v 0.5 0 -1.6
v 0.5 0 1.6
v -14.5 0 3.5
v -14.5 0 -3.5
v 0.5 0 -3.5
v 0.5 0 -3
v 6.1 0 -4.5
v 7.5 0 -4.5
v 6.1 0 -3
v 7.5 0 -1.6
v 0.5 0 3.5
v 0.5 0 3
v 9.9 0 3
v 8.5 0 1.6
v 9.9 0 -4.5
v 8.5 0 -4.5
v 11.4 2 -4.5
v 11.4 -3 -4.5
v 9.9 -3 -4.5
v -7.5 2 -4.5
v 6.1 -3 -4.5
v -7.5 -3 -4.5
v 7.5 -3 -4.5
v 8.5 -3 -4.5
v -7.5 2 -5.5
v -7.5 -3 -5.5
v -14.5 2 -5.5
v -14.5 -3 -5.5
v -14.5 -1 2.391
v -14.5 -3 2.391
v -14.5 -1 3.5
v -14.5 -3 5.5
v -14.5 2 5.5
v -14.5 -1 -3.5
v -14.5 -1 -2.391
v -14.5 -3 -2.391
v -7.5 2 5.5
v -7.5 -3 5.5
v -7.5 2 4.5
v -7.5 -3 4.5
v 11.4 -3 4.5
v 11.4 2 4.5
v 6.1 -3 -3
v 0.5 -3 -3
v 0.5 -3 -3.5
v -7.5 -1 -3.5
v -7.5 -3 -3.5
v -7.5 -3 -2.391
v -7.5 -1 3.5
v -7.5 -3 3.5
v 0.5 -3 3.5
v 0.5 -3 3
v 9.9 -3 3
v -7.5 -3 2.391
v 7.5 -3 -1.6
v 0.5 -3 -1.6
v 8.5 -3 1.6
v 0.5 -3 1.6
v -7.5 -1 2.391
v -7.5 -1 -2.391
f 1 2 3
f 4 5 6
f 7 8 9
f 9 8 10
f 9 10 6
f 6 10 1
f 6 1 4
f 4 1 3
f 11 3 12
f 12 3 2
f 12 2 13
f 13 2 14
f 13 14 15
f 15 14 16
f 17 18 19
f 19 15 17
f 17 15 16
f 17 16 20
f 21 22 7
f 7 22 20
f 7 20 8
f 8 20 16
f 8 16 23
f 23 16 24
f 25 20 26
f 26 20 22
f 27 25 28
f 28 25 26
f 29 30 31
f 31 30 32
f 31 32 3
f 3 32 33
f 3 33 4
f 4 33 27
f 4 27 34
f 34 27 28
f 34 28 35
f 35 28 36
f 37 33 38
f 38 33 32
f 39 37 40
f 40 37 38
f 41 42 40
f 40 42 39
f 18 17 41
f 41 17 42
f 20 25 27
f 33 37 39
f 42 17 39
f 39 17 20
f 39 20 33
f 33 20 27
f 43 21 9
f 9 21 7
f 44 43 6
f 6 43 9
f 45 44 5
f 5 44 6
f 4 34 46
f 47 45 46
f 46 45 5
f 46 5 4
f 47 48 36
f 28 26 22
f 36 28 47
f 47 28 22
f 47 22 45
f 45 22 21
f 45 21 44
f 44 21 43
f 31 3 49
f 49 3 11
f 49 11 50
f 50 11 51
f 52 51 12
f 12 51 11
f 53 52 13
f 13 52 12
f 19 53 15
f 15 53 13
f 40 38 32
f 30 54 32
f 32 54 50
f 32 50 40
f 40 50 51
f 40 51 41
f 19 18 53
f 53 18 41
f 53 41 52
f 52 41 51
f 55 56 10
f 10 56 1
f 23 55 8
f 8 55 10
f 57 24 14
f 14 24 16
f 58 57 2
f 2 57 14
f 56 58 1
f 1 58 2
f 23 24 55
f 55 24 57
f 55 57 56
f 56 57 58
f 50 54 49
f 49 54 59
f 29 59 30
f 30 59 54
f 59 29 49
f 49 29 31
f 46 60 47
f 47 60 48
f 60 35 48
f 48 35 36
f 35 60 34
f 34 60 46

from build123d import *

# Parameters (mm, degrees)
BOSS_EXTRUDE1_DEPTH = 2
BOSS_EXTRUDE2_DEPTH = 3
SKETCH3_W           = 7
SKETCH3_H           = 3.108863517
BOSS_EXTRUDE3_DEPTH = 2


with BuildPart() as part:
    # Sketch1 → Boss-Extrude1 (new body)
    with BuildSketch(Plane(origin=(0, 0, 0), x_dir=(1, 0, 0), z_dir=(0, 1, 0))):
        Polygon((-7.5, -4.5), (7.5, -4.5), (11.4, -4.5), (11.4, 4.5), (7.5, 4.5), (-7.5, 4.5), (-7.5, 5.5), (-14.5, 5.5), (-14.5, -5.5), (-7.5, -5.5), align=None)
    extrude(amount=BOSS_EXTRUDE1_DEPTH)

    # Sketch2 → Boss-Extrude2 (add)
    with BuildSketch(Plane(origin=(0, 0, 0), x_dir=(1, 0, 0), z_dir=(0, 1, 0))):
        Polygon((6.1, 4.5), (-7.5, 4.5), (-7.5, 5.5), (-14.5, 5.5), (-14.5, 3.5), (0.5, 3.5), (0.5, 3), (6.1, 3), align=None)
        Polygon((-7.5, -4.5), (-7.5, -5.5), (-14.5, -5.5), (-14.5, -3.5), (0.5, -3.5), (0.5, -3), (7.5, -3), (9.9, -3), (9.9, 4.5), (11.4, 4.5), (11.4, -4.5), (7.5, -4.5), align=None)
        Polygon((0.5, -1.6), (0.5, 1.6), (7.5, 1.6), (7.5, 4.5), (8.5, 4.5), (8.5, -1.6), (7.5, -1.6), align=None)
    extrude(amount=-BOSS_EXTRUDE2_DEPTH)

    # Sketch3 → Boss-Extrude3 (add)
    with BuildSketch(Plane.XZ.offset(3)):
        with Locations((-11, 3.945568242)):
            Rectangle(SKETCH3_W, SKETCH3_H)
        with Locations((-11, -3.945568242)):
            Rectangle(SKETCH3_W, SKETCH3_H)
    extrude(amount=-BOSS_EXTRUDE3_DEPTH)


solid = part.part
